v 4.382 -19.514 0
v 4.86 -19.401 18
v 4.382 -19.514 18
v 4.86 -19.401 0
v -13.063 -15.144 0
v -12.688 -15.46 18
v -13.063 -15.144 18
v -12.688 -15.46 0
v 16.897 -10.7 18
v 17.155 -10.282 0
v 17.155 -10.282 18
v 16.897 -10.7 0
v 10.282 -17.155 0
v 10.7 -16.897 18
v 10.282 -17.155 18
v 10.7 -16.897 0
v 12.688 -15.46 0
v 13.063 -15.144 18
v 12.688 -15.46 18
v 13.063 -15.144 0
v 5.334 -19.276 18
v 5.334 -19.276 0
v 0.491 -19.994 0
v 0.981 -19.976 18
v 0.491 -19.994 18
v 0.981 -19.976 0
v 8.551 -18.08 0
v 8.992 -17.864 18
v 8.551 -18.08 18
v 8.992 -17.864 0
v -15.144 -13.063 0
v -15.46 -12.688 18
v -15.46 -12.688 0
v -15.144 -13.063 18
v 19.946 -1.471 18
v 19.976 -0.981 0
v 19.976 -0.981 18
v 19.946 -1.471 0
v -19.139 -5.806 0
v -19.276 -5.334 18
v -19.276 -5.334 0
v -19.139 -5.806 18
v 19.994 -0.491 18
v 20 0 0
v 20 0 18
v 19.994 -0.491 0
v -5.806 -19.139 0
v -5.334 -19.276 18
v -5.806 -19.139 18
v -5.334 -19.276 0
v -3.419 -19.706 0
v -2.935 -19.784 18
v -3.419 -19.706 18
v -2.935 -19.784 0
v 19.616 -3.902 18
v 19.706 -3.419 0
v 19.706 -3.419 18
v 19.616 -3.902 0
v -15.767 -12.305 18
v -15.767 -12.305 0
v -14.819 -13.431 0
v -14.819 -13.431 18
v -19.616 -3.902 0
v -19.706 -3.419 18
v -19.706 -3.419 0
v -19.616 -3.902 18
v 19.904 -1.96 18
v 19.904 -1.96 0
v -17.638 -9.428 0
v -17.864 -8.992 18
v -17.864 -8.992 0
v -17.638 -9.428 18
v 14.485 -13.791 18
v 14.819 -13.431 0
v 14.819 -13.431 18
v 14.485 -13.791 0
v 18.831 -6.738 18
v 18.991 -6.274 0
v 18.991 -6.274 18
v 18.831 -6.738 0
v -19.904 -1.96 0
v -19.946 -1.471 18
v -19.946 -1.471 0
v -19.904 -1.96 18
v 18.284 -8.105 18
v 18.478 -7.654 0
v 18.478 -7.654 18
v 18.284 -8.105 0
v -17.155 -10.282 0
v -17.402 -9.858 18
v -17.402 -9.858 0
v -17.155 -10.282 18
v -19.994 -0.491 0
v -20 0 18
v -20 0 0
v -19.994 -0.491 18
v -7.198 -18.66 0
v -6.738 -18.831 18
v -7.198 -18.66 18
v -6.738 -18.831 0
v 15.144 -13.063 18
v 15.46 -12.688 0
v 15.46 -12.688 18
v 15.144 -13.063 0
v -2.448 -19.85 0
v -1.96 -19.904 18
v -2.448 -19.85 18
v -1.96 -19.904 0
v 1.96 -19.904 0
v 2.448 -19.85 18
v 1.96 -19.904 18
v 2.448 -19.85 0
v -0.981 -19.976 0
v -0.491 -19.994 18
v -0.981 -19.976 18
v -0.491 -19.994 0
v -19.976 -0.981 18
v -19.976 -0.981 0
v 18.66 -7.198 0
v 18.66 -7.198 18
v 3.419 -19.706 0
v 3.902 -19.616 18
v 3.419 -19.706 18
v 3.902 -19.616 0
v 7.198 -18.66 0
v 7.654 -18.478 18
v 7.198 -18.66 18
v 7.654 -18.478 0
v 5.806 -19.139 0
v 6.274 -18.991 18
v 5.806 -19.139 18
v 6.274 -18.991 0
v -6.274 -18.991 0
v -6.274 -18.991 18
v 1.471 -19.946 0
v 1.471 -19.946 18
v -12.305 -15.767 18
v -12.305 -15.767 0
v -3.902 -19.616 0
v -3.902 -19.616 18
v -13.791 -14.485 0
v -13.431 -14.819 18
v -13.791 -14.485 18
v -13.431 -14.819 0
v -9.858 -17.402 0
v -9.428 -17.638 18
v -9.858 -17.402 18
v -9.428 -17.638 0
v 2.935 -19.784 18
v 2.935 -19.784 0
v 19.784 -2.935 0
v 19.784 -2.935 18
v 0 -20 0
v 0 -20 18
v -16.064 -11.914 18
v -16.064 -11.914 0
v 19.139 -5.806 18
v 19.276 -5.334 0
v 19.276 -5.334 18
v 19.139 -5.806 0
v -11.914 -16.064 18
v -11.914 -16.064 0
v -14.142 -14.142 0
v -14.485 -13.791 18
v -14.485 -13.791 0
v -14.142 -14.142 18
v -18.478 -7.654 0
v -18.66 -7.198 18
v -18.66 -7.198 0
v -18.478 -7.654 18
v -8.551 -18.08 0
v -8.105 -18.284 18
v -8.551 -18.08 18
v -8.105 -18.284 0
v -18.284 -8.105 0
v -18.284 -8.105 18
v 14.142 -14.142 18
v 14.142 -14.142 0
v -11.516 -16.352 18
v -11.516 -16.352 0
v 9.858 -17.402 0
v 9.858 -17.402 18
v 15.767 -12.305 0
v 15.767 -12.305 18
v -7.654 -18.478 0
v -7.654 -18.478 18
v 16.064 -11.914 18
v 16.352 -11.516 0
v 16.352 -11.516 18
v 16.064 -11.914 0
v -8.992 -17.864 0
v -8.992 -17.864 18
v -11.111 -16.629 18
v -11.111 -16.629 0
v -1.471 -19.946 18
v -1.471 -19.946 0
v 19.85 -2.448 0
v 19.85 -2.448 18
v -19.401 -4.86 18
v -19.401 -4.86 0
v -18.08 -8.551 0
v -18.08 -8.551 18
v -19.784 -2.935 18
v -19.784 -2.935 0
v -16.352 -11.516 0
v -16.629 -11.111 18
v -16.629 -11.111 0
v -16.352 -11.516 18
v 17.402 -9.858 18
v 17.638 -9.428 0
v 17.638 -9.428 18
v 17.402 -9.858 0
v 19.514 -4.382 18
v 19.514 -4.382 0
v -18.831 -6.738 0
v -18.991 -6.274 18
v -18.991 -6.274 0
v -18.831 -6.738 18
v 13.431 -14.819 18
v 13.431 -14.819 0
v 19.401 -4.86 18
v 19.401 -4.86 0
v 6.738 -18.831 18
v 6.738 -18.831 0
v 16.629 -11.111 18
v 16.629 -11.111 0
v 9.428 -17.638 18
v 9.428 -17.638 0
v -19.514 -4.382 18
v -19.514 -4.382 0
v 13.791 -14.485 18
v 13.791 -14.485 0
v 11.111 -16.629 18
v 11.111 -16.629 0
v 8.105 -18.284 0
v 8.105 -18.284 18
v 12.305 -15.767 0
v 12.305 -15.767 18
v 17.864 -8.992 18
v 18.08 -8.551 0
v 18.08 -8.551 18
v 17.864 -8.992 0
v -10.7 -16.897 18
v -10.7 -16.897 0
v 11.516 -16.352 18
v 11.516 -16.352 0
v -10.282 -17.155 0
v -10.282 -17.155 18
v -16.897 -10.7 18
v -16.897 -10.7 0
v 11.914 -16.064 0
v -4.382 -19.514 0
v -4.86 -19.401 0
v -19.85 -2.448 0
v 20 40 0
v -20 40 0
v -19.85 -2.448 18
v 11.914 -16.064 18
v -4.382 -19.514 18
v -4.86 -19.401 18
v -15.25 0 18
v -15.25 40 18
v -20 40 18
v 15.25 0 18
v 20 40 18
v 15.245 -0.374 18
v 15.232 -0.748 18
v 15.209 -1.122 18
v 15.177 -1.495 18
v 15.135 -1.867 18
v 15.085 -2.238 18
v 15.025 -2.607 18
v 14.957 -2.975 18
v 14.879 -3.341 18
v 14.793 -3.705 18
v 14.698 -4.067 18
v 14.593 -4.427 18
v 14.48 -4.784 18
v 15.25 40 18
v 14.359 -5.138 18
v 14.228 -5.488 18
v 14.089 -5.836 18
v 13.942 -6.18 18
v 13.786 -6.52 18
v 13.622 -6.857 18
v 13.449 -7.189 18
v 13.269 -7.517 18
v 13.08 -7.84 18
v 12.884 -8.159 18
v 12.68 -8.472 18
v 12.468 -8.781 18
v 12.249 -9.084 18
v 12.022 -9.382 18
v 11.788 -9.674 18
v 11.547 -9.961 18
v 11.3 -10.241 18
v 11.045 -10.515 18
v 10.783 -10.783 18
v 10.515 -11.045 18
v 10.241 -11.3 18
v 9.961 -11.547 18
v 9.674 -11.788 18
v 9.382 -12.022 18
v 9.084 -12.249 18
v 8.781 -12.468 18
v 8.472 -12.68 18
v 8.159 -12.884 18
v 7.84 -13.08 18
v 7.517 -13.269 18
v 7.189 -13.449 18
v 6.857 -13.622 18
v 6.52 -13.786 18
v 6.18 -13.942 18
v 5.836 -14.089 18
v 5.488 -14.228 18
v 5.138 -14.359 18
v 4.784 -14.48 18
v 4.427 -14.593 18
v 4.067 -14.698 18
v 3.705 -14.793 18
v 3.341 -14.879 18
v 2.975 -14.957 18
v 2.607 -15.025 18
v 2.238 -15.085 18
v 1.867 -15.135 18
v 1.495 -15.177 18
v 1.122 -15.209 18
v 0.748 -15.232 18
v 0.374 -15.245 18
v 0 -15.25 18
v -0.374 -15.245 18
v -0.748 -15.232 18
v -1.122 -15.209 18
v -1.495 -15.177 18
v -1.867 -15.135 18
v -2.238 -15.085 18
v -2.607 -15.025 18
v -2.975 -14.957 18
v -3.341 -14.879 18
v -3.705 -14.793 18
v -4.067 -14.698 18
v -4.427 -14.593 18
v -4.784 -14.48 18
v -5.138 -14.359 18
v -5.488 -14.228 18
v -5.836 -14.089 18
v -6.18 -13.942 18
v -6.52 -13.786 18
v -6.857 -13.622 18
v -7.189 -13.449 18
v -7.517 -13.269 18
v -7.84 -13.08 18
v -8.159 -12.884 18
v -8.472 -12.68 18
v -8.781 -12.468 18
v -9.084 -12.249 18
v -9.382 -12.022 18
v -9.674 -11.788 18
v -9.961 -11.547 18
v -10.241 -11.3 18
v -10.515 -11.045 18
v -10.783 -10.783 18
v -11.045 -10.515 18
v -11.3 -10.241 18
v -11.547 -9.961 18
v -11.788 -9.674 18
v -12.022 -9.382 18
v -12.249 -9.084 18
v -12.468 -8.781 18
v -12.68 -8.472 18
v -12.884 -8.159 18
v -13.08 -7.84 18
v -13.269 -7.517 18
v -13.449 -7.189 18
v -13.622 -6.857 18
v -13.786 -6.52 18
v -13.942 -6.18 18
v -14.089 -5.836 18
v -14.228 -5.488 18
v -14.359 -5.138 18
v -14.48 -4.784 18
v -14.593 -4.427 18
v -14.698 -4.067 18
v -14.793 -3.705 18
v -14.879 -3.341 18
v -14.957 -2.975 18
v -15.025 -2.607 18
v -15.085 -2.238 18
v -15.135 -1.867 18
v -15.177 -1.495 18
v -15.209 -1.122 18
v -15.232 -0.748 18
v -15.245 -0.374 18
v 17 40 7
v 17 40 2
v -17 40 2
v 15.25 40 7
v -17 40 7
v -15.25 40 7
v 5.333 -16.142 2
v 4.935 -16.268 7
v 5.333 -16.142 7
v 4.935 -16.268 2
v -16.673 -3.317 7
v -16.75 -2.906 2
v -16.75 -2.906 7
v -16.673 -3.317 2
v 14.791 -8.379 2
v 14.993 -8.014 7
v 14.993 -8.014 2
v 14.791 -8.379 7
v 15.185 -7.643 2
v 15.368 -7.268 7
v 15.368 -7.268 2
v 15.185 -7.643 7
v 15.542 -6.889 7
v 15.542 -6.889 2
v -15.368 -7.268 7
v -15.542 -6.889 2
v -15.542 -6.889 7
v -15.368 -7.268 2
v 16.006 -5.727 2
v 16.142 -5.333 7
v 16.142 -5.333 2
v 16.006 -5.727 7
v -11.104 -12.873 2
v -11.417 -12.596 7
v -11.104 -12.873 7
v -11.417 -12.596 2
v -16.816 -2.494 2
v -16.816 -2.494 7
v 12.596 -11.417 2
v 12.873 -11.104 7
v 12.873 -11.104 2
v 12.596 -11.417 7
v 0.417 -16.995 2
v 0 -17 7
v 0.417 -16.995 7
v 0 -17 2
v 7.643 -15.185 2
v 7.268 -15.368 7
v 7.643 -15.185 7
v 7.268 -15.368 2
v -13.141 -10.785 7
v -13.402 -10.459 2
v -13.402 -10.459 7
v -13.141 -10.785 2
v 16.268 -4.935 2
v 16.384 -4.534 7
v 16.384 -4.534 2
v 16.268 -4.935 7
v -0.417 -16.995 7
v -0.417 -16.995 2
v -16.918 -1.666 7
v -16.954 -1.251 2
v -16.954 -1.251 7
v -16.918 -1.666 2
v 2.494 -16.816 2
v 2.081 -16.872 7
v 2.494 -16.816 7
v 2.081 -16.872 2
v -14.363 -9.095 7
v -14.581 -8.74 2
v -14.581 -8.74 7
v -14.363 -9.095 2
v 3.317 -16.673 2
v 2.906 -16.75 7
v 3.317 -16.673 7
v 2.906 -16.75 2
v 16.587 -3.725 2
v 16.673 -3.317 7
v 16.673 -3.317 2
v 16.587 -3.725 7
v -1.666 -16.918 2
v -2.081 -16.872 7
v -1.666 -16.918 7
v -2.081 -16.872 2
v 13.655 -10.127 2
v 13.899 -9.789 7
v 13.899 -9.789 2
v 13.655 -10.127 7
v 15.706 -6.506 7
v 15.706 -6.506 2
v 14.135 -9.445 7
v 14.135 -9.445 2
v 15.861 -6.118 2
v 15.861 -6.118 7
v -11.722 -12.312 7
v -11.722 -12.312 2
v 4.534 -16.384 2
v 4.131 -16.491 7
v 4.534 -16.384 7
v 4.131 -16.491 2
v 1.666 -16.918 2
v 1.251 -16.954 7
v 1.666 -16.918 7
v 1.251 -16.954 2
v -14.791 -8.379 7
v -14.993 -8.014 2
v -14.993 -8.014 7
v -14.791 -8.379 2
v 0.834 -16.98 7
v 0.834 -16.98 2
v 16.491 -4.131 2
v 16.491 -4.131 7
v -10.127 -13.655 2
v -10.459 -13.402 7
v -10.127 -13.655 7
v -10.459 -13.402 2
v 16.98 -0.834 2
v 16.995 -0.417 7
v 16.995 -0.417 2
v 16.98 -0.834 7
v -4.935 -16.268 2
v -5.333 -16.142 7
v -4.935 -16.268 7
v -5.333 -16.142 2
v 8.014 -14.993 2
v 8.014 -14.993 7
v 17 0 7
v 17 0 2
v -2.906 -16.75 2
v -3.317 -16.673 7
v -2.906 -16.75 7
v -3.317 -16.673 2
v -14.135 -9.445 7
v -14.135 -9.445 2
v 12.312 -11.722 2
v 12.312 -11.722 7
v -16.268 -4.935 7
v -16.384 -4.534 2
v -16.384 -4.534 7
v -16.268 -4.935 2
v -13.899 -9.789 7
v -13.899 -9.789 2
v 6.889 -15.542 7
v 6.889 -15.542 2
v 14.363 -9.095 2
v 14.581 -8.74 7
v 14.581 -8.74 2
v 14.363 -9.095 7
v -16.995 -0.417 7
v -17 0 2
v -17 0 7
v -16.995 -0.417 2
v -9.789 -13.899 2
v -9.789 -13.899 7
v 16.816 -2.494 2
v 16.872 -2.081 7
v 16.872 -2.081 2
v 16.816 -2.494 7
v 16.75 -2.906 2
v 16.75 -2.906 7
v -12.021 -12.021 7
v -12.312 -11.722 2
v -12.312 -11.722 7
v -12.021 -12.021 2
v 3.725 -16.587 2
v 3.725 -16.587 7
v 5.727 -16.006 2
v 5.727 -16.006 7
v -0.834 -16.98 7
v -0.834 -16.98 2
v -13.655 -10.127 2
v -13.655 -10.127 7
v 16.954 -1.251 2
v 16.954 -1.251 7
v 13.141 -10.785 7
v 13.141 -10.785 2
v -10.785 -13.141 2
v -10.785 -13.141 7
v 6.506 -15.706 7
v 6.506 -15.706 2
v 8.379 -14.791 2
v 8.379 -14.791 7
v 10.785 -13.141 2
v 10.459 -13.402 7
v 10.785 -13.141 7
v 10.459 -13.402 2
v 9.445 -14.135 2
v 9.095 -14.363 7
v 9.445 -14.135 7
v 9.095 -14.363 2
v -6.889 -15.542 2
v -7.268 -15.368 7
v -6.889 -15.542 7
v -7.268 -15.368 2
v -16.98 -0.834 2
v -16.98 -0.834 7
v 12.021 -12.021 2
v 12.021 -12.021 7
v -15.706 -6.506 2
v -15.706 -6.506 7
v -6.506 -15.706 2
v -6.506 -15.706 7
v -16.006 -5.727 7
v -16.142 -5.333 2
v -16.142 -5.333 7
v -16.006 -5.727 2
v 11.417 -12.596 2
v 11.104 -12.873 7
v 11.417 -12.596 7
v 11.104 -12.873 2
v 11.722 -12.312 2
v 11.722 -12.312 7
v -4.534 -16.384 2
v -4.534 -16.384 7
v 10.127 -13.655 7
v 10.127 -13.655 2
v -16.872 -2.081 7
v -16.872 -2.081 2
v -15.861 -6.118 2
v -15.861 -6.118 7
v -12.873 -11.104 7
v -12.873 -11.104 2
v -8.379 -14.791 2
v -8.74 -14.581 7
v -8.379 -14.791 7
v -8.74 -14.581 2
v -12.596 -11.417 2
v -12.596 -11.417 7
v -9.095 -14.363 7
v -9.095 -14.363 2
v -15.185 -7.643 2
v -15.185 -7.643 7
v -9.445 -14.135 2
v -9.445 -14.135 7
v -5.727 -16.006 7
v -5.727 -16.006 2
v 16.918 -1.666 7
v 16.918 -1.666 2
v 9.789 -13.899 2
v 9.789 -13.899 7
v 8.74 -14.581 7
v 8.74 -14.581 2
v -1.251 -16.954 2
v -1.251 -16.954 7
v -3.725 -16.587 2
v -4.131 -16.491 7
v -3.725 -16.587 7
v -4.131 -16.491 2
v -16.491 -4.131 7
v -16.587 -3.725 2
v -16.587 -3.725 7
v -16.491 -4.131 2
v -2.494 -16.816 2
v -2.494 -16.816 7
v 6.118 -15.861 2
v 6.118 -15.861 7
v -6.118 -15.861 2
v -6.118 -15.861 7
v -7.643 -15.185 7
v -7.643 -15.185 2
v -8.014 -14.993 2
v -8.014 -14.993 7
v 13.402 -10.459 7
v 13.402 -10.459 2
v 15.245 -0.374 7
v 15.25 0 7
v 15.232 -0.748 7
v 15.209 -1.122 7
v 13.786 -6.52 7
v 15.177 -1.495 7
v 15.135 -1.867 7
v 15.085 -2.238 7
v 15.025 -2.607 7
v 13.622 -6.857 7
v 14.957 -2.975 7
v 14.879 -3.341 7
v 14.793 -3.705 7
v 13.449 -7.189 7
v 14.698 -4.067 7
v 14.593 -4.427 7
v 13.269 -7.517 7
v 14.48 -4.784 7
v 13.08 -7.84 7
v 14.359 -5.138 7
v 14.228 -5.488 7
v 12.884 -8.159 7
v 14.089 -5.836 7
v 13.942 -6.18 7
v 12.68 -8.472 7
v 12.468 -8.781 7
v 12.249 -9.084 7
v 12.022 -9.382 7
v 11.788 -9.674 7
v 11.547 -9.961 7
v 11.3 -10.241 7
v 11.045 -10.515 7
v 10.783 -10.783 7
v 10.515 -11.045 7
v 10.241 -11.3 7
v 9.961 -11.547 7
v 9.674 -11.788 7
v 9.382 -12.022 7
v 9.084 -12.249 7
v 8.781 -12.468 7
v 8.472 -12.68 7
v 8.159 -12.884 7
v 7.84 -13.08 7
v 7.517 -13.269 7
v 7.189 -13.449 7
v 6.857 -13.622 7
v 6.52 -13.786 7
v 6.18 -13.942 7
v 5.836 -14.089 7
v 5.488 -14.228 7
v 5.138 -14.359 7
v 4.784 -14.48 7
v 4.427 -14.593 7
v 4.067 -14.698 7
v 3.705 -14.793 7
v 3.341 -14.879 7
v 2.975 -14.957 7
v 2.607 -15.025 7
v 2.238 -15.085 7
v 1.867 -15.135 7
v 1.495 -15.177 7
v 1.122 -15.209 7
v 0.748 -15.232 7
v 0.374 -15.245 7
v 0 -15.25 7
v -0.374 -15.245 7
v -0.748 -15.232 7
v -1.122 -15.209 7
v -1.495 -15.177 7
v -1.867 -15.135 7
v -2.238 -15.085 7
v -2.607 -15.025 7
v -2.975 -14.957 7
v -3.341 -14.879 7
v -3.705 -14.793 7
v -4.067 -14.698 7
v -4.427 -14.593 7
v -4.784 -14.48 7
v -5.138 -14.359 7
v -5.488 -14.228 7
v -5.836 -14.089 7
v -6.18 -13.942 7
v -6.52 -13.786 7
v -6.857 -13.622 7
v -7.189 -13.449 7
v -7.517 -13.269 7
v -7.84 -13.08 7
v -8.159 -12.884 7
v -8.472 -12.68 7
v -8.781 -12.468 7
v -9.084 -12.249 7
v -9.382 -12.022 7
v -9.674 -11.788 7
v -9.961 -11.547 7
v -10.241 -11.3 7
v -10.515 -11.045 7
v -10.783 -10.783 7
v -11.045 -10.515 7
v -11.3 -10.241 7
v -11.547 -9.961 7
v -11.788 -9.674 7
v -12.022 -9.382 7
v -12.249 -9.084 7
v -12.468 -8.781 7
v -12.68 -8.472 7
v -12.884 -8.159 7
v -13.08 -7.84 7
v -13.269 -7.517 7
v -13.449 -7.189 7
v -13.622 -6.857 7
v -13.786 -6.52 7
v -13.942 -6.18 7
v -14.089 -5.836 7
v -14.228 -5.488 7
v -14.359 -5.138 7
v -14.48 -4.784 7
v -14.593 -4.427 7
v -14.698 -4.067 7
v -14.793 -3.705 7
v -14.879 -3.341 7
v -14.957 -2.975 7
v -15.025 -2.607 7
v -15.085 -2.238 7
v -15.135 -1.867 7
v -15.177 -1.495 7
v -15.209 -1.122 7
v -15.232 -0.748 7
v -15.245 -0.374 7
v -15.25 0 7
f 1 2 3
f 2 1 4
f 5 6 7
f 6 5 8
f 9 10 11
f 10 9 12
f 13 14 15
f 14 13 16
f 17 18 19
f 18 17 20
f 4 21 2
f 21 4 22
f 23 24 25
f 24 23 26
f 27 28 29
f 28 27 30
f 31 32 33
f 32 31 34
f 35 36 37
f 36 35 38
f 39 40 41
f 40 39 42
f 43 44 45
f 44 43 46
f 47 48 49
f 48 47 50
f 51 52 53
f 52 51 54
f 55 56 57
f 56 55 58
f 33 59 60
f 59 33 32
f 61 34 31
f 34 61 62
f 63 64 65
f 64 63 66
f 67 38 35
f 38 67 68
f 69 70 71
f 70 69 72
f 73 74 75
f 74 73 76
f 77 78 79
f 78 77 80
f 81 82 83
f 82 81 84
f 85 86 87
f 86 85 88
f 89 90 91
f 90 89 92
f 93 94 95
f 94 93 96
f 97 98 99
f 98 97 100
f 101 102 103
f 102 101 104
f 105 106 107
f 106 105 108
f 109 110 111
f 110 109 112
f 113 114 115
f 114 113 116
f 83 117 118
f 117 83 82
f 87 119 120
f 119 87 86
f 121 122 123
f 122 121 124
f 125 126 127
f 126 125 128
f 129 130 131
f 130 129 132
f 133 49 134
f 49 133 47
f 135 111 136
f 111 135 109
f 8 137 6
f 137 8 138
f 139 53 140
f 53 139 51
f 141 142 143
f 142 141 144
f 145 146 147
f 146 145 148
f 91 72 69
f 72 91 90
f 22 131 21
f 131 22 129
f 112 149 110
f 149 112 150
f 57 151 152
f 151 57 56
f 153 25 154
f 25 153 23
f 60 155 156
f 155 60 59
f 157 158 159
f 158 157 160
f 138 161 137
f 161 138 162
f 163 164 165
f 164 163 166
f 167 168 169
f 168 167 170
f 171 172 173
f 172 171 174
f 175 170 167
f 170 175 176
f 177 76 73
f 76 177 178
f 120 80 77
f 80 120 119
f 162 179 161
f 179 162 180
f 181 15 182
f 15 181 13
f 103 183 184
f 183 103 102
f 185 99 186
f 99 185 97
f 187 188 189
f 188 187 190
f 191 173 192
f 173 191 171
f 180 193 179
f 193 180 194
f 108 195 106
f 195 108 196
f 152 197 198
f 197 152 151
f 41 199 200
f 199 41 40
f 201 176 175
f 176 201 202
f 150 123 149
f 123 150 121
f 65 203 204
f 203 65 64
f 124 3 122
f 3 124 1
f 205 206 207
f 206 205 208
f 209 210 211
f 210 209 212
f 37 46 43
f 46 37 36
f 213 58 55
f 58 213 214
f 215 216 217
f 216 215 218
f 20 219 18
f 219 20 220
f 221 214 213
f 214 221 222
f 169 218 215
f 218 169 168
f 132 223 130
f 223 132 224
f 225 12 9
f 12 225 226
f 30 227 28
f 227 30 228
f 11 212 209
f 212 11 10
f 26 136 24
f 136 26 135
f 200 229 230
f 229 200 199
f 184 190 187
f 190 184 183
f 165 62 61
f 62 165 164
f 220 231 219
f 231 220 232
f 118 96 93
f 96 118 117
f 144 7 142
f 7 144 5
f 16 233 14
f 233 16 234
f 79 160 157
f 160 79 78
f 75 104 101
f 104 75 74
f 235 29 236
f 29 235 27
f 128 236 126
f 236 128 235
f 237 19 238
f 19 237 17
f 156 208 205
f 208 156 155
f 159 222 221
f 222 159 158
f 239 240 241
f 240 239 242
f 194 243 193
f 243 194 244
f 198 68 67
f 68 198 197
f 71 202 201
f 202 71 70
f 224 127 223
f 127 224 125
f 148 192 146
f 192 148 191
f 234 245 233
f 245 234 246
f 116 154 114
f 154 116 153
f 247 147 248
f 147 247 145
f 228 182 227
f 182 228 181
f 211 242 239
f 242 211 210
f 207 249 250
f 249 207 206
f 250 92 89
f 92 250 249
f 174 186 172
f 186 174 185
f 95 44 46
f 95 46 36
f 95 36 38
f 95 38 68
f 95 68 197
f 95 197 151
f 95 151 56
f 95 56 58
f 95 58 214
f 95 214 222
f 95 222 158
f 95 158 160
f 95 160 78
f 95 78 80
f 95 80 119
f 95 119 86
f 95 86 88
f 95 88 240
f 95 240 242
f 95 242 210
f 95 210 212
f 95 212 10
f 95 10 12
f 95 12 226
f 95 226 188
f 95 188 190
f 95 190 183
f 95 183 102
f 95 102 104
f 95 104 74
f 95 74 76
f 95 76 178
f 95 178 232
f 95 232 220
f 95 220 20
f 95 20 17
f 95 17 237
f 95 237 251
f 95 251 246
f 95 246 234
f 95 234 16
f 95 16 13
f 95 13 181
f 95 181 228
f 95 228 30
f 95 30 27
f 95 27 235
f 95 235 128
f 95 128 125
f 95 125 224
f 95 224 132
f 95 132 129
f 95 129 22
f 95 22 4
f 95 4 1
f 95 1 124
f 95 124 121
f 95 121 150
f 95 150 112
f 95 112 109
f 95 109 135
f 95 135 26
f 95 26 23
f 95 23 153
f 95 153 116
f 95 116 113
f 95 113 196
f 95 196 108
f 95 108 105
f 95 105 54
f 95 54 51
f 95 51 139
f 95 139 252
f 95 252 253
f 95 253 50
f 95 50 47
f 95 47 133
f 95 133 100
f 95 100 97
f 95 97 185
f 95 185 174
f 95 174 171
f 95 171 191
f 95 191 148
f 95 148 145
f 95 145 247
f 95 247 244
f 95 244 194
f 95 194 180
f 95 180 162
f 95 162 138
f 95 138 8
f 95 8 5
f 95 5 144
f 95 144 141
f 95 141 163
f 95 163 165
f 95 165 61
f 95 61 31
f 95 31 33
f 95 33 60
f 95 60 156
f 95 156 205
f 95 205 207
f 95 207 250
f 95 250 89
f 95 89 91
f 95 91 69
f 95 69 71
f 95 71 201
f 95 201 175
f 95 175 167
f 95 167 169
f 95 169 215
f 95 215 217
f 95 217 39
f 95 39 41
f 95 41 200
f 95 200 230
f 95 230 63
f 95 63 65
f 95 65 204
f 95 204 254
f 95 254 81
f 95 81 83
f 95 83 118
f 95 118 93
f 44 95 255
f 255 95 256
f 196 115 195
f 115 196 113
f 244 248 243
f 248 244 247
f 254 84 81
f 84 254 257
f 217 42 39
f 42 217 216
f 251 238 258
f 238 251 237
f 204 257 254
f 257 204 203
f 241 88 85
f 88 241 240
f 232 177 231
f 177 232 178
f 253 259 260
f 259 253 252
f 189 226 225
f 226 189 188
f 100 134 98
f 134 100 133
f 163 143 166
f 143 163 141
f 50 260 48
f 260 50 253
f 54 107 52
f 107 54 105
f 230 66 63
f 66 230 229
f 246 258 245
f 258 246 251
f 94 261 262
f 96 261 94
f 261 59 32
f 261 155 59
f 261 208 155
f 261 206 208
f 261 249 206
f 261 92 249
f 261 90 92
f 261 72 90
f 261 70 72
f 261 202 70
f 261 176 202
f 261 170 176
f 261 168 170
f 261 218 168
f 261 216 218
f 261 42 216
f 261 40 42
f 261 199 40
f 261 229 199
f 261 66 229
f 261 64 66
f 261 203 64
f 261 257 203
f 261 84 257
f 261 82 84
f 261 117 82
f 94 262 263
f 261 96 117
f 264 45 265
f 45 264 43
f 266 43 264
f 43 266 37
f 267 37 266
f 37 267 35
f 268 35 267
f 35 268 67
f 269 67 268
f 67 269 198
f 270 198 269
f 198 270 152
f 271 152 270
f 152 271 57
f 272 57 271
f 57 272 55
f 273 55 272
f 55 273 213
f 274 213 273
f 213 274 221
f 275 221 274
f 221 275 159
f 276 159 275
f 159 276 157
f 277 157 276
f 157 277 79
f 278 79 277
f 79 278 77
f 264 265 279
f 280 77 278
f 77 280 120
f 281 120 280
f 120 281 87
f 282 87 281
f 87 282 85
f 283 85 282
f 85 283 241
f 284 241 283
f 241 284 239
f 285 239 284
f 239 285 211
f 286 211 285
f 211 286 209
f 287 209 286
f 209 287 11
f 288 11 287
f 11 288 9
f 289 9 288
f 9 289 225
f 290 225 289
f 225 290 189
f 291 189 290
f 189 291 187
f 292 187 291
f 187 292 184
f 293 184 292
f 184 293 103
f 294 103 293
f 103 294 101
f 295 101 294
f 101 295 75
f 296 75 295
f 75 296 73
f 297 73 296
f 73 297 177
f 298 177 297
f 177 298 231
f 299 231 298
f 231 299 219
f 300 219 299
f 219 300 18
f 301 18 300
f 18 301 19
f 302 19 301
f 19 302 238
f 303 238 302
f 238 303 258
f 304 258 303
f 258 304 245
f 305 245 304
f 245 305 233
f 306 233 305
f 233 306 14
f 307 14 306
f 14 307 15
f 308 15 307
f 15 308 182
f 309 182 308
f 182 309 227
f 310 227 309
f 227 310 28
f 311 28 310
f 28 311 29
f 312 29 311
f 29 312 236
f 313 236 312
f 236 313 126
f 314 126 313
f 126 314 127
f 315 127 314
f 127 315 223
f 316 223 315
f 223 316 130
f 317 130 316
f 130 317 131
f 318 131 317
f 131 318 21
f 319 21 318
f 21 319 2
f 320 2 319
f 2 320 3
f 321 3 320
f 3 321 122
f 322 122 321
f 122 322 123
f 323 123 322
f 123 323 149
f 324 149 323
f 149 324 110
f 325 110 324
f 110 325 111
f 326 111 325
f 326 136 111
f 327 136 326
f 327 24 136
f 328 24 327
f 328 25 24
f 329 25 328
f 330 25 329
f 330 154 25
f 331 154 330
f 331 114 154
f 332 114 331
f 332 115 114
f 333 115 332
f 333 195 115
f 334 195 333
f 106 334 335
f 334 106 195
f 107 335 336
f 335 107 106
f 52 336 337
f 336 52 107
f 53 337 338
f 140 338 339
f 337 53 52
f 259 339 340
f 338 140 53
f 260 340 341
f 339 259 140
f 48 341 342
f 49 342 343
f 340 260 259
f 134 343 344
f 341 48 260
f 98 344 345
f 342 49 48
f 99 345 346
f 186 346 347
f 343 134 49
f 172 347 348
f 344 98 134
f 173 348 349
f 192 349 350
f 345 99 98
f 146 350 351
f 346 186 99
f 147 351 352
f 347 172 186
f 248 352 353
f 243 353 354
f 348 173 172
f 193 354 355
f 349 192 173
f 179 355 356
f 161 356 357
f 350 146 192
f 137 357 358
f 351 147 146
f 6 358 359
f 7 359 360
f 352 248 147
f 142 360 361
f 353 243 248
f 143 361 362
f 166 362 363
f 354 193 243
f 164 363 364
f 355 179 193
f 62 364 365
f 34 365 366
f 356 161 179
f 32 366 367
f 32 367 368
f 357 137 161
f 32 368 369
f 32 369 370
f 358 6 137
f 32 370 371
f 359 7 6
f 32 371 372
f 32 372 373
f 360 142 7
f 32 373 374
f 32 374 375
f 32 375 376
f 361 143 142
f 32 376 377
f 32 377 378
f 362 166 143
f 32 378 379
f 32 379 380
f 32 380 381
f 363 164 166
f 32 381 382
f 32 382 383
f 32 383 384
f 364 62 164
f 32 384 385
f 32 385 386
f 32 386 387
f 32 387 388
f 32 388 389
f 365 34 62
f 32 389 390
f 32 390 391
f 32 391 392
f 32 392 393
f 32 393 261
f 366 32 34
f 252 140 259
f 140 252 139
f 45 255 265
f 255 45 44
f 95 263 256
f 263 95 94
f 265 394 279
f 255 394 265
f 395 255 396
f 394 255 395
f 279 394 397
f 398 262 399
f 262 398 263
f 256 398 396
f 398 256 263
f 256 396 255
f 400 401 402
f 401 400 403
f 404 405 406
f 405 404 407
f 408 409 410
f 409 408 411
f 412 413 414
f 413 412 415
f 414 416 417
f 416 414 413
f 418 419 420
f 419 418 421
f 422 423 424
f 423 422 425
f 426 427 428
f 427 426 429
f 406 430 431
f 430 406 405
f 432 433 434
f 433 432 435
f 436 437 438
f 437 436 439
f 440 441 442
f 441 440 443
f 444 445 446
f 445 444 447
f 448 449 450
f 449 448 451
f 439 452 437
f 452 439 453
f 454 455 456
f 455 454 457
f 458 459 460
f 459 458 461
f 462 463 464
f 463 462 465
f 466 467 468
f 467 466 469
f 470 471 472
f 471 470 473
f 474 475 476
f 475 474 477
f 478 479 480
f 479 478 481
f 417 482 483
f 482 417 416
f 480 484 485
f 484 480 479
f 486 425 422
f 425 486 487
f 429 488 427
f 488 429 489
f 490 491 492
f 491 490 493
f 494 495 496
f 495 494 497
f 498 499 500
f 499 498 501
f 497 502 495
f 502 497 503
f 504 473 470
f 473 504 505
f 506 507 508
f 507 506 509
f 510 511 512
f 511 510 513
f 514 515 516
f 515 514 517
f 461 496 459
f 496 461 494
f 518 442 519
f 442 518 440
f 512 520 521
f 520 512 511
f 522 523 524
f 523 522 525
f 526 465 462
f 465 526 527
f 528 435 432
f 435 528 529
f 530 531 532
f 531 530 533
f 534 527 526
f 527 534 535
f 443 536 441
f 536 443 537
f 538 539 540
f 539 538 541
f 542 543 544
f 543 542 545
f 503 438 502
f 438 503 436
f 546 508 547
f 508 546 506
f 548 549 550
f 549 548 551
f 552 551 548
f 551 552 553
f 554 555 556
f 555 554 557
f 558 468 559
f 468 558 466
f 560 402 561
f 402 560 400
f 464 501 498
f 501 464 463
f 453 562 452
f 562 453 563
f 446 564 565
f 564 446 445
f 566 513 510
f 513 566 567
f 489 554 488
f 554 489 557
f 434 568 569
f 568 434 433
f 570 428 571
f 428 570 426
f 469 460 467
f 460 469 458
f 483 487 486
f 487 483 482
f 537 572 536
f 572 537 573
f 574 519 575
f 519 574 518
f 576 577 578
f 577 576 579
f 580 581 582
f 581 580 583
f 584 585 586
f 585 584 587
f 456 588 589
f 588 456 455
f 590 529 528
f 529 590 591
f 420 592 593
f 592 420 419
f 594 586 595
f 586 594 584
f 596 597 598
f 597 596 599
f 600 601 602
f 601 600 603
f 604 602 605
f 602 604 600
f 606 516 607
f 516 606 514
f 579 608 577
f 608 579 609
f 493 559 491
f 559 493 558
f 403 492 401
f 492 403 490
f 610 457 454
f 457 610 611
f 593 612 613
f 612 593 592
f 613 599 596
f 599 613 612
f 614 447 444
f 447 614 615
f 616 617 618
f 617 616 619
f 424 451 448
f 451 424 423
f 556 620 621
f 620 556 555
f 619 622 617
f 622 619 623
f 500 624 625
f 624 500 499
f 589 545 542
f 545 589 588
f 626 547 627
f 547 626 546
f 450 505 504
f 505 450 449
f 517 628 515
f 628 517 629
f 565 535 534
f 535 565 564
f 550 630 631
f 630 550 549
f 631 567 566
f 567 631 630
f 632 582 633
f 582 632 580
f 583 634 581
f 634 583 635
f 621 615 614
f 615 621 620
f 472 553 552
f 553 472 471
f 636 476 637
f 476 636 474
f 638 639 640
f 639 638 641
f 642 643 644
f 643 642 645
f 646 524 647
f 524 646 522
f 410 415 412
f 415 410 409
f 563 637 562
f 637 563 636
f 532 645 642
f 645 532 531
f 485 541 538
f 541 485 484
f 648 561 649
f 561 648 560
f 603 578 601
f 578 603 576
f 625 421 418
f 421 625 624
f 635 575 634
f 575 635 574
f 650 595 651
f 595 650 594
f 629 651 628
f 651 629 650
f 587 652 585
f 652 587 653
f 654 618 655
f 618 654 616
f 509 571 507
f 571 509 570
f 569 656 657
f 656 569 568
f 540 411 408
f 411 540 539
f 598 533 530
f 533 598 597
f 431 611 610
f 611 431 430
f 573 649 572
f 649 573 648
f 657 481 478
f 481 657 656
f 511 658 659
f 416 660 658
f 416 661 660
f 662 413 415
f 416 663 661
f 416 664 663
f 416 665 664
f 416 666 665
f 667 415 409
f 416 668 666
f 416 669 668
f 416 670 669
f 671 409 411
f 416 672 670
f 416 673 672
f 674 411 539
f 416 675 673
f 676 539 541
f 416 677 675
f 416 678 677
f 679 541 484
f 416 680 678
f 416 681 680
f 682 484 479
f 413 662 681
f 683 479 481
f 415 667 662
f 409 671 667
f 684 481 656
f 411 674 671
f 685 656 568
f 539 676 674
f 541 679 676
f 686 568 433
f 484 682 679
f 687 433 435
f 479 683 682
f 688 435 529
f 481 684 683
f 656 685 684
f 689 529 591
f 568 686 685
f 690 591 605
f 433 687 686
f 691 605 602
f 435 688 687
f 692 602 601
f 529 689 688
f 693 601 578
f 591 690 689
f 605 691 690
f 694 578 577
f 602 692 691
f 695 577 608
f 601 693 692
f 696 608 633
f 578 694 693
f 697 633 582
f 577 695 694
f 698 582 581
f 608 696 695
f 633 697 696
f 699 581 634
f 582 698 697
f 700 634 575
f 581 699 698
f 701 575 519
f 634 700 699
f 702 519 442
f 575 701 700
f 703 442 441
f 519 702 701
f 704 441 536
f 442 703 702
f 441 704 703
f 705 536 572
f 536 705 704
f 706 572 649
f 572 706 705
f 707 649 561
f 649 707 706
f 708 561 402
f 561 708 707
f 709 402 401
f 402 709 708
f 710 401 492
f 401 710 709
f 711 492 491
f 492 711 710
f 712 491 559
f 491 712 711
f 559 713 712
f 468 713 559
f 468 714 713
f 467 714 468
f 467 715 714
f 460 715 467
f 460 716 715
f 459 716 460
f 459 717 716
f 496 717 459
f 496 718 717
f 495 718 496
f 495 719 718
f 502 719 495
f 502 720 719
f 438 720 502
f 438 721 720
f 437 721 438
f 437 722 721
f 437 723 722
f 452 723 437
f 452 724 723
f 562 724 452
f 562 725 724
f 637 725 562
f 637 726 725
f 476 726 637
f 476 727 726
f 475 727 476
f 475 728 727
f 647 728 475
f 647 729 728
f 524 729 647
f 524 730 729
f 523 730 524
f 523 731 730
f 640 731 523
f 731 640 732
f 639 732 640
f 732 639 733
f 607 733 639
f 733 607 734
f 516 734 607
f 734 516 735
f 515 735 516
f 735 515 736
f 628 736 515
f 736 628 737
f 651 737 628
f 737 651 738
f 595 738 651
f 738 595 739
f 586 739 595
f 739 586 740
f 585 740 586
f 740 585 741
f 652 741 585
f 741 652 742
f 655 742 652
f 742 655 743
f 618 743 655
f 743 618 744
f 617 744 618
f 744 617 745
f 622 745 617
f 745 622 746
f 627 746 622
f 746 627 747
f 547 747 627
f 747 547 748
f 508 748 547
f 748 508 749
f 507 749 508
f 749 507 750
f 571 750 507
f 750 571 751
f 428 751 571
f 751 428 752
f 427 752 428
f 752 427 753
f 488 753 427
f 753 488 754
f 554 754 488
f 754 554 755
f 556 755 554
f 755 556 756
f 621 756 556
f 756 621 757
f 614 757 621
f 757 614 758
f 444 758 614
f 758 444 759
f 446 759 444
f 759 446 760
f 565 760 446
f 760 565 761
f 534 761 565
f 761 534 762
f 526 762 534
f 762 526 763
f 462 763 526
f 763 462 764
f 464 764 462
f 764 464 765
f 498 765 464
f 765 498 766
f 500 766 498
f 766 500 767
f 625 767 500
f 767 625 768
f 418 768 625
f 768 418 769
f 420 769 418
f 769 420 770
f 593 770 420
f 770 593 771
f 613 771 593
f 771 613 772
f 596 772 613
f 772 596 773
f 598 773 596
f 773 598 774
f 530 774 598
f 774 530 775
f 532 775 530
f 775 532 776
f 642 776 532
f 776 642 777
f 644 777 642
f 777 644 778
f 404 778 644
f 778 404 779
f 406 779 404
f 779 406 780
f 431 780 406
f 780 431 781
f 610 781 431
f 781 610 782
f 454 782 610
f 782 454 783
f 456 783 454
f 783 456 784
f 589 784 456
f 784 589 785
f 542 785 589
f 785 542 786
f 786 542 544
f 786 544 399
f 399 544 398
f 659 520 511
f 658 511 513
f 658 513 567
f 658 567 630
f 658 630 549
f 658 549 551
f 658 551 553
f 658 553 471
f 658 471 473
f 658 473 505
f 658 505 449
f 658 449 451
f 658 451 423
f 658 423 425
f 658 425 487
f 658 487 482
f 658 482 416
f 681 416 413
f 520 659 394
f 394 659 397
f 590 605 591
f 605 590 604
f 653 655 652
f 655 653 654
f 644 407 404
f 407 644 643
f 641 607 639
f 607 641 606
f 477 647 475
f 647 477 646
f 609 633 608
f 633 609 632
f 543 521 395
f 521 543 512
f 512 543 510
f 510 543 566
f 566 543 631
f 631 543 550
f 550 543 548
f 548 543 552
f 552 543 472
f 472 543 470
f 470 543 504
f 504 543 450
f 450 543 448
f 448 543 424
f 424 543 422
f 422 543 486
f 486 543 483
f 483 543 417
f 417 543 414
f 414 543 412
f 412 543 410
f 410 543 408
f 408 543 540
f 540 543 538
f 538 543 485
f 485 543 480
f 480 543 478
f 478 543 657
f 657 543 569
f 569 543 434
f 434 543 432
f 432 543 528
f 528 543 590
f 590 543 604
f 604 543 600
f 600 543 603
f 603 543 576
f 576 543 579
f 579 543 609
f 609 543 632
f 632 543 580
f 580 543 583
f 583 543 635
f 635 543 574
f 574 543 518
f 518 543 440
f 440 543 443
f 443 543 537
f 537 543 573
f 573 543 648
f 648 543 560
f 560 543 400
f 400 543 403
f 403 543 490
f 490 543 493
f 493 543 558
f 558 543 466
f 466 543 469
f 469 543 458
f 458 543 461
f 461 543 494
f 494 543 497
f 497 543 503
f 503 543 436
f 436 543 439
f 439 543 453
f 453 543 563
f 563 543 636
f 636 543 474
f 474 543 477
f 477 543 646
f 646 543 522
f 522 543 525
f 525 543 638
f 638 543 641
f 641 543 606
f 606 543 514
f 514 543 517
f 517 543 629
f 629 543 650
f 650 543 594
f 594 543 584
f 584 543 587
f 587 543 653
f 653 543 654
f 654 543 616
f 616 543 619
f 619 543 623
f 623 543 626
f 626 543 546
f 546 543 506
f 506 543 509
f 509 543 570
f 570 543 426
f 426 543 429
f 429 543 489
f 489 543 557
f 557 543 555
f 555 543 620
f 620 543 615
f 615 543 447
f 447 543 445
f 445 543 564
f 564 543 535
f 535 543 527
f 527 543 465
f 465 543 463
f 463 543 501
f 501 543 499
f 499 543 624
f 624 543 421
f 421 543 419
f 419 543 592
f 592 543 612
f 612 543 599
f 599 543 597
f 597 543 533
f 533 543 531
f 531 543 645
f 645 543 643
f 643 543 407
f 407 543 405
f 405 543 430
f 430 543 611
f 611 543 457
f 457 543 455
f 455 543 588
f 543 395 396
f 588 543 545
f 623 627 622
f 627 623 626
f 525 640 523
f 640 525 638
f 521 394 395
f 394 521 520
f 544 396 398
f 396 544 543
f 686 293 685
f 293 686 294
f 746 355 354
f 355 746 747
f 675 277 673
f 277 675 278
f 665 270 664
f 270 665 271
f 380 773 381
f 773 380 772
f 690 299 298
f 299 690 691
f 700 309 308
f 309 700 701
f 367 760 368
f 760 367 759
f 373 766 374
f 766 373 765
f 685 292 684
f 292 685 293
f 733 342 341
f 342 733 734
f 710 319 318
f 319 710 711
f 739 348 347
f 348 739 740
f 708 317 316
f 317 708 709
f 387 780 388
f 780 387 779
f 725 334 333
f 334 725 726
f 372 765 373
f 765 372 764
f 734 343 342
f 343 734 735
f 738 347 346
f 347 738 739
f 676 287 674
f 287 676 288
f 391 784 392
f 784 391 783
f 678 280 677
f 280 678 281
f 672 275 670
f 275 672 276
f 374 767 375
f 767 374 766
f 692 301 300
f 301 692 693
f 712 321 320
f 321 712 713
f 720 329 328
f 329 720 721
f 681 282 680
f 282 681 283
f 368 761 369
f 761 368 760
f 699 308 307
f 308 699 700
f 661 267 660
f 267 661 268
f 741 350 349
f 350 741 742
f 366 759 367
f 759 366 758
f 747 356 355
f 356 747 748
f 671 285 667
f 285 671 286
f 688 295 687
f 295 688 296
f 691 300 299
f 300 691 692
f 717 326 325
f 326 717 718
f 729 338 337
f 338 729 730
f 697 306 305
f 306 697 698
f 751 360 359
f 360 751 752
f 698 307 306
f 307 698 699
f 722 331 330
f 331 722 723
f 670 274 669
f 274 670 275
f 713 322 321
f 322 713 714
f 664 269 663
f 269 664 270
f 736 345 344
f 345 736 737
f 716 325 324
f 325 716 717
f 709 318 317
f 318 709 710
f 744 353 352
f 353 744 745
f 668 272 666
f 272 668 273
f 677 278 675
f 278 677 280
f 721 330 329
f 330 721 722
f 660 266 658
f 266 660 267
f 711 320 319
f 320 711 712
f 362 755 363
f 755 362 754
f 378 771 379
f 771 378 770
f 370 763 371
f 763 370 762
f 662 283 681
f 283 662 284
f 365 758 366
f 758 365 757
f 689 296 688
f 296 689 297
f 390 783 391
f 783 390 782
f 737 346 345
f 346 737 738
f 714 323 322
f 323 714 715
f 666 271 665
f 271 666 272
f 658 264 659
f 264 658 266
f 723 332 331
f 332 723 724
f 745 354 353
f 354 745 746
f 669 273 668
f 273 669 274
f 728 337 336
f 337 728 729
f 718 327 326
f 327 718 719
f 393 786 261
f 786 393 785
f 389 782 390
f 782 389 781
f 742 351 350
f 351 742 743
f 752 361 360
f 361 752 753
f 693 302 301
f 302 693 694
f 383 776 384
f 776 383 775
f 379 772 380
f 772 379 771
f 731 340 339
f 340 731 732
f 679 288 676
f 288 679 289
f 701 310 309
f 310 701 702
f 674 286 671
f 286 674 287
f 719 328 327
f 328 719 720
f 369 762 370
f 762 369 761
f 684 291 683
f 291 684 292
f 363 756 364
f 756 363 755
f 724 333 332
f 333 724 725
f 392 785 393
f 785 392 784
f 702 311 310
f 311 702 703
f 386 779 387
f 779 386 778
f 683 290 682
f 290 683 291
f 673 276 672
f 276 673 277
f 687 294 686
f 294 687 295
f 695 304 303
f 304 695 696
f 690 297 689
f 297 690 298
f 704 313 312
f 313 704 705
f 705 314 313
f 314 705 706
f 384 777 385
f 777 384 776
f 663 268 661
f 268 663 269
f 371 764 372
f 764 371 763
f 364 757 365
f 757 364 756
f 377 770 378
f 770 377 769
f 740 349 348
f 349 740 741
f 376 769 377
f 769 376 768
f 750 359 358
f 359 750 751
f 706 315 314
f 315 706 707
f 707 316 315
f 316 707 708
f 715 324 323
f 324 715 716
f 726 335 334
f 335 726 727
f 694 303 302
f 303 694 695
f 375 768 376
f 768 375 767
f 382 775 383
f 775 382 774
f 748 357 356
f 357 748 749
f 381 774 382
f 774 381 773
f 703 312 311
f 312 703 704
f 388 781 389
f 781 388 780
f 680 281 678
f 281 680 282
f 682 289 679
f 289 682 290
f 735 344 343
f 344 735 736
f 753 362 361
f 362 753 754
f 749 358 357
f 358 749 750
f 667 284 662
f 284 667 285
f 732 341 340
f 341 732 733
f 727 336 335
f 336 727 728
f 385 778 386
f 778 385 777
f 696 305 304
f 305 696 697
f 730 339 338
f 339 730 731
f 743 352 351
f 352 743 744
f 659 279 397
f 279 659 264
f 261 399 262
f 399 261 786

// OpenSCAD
$fn = $preview ? 64 : 256;

hole_base_width = 34;
hole_base_height = 5;

hole_top_width = 30.5;
hole_top_height = 11;

base_height = 2;

width = 40;
height = base_height + hole_base_height + hole_top_height;

extra_base_width = width-33;
extra_top_width = (hole_base_width-hole_top_width)+extra_base_width;

difference() {
	union() {
		cylinder(height, d=width);
		translate([0, width/2, height/2]) cube([width, width, height], true);
	}
	translate([0, 0, base_height]) {
		cylinder(hole_base_height, d=hole_base_width);
		translate([0, hole_base_width/2+extra_base_width/2, hole_base_height/2])
			cube([hole_base_width, hole_base_width+extra_base_width, hole_base_height], true);

		translate([0, 0, hole_base_height])
			cylinder(hole_top_height, d=hole_top_width);
		translate([0, hole_top_width/2+extra_top_width/2, hole_base_height+hole_top_height/2])
			cube([hole_top_width, hole_top_width+extra_top_width, hole_top_height], true);
	}
}
